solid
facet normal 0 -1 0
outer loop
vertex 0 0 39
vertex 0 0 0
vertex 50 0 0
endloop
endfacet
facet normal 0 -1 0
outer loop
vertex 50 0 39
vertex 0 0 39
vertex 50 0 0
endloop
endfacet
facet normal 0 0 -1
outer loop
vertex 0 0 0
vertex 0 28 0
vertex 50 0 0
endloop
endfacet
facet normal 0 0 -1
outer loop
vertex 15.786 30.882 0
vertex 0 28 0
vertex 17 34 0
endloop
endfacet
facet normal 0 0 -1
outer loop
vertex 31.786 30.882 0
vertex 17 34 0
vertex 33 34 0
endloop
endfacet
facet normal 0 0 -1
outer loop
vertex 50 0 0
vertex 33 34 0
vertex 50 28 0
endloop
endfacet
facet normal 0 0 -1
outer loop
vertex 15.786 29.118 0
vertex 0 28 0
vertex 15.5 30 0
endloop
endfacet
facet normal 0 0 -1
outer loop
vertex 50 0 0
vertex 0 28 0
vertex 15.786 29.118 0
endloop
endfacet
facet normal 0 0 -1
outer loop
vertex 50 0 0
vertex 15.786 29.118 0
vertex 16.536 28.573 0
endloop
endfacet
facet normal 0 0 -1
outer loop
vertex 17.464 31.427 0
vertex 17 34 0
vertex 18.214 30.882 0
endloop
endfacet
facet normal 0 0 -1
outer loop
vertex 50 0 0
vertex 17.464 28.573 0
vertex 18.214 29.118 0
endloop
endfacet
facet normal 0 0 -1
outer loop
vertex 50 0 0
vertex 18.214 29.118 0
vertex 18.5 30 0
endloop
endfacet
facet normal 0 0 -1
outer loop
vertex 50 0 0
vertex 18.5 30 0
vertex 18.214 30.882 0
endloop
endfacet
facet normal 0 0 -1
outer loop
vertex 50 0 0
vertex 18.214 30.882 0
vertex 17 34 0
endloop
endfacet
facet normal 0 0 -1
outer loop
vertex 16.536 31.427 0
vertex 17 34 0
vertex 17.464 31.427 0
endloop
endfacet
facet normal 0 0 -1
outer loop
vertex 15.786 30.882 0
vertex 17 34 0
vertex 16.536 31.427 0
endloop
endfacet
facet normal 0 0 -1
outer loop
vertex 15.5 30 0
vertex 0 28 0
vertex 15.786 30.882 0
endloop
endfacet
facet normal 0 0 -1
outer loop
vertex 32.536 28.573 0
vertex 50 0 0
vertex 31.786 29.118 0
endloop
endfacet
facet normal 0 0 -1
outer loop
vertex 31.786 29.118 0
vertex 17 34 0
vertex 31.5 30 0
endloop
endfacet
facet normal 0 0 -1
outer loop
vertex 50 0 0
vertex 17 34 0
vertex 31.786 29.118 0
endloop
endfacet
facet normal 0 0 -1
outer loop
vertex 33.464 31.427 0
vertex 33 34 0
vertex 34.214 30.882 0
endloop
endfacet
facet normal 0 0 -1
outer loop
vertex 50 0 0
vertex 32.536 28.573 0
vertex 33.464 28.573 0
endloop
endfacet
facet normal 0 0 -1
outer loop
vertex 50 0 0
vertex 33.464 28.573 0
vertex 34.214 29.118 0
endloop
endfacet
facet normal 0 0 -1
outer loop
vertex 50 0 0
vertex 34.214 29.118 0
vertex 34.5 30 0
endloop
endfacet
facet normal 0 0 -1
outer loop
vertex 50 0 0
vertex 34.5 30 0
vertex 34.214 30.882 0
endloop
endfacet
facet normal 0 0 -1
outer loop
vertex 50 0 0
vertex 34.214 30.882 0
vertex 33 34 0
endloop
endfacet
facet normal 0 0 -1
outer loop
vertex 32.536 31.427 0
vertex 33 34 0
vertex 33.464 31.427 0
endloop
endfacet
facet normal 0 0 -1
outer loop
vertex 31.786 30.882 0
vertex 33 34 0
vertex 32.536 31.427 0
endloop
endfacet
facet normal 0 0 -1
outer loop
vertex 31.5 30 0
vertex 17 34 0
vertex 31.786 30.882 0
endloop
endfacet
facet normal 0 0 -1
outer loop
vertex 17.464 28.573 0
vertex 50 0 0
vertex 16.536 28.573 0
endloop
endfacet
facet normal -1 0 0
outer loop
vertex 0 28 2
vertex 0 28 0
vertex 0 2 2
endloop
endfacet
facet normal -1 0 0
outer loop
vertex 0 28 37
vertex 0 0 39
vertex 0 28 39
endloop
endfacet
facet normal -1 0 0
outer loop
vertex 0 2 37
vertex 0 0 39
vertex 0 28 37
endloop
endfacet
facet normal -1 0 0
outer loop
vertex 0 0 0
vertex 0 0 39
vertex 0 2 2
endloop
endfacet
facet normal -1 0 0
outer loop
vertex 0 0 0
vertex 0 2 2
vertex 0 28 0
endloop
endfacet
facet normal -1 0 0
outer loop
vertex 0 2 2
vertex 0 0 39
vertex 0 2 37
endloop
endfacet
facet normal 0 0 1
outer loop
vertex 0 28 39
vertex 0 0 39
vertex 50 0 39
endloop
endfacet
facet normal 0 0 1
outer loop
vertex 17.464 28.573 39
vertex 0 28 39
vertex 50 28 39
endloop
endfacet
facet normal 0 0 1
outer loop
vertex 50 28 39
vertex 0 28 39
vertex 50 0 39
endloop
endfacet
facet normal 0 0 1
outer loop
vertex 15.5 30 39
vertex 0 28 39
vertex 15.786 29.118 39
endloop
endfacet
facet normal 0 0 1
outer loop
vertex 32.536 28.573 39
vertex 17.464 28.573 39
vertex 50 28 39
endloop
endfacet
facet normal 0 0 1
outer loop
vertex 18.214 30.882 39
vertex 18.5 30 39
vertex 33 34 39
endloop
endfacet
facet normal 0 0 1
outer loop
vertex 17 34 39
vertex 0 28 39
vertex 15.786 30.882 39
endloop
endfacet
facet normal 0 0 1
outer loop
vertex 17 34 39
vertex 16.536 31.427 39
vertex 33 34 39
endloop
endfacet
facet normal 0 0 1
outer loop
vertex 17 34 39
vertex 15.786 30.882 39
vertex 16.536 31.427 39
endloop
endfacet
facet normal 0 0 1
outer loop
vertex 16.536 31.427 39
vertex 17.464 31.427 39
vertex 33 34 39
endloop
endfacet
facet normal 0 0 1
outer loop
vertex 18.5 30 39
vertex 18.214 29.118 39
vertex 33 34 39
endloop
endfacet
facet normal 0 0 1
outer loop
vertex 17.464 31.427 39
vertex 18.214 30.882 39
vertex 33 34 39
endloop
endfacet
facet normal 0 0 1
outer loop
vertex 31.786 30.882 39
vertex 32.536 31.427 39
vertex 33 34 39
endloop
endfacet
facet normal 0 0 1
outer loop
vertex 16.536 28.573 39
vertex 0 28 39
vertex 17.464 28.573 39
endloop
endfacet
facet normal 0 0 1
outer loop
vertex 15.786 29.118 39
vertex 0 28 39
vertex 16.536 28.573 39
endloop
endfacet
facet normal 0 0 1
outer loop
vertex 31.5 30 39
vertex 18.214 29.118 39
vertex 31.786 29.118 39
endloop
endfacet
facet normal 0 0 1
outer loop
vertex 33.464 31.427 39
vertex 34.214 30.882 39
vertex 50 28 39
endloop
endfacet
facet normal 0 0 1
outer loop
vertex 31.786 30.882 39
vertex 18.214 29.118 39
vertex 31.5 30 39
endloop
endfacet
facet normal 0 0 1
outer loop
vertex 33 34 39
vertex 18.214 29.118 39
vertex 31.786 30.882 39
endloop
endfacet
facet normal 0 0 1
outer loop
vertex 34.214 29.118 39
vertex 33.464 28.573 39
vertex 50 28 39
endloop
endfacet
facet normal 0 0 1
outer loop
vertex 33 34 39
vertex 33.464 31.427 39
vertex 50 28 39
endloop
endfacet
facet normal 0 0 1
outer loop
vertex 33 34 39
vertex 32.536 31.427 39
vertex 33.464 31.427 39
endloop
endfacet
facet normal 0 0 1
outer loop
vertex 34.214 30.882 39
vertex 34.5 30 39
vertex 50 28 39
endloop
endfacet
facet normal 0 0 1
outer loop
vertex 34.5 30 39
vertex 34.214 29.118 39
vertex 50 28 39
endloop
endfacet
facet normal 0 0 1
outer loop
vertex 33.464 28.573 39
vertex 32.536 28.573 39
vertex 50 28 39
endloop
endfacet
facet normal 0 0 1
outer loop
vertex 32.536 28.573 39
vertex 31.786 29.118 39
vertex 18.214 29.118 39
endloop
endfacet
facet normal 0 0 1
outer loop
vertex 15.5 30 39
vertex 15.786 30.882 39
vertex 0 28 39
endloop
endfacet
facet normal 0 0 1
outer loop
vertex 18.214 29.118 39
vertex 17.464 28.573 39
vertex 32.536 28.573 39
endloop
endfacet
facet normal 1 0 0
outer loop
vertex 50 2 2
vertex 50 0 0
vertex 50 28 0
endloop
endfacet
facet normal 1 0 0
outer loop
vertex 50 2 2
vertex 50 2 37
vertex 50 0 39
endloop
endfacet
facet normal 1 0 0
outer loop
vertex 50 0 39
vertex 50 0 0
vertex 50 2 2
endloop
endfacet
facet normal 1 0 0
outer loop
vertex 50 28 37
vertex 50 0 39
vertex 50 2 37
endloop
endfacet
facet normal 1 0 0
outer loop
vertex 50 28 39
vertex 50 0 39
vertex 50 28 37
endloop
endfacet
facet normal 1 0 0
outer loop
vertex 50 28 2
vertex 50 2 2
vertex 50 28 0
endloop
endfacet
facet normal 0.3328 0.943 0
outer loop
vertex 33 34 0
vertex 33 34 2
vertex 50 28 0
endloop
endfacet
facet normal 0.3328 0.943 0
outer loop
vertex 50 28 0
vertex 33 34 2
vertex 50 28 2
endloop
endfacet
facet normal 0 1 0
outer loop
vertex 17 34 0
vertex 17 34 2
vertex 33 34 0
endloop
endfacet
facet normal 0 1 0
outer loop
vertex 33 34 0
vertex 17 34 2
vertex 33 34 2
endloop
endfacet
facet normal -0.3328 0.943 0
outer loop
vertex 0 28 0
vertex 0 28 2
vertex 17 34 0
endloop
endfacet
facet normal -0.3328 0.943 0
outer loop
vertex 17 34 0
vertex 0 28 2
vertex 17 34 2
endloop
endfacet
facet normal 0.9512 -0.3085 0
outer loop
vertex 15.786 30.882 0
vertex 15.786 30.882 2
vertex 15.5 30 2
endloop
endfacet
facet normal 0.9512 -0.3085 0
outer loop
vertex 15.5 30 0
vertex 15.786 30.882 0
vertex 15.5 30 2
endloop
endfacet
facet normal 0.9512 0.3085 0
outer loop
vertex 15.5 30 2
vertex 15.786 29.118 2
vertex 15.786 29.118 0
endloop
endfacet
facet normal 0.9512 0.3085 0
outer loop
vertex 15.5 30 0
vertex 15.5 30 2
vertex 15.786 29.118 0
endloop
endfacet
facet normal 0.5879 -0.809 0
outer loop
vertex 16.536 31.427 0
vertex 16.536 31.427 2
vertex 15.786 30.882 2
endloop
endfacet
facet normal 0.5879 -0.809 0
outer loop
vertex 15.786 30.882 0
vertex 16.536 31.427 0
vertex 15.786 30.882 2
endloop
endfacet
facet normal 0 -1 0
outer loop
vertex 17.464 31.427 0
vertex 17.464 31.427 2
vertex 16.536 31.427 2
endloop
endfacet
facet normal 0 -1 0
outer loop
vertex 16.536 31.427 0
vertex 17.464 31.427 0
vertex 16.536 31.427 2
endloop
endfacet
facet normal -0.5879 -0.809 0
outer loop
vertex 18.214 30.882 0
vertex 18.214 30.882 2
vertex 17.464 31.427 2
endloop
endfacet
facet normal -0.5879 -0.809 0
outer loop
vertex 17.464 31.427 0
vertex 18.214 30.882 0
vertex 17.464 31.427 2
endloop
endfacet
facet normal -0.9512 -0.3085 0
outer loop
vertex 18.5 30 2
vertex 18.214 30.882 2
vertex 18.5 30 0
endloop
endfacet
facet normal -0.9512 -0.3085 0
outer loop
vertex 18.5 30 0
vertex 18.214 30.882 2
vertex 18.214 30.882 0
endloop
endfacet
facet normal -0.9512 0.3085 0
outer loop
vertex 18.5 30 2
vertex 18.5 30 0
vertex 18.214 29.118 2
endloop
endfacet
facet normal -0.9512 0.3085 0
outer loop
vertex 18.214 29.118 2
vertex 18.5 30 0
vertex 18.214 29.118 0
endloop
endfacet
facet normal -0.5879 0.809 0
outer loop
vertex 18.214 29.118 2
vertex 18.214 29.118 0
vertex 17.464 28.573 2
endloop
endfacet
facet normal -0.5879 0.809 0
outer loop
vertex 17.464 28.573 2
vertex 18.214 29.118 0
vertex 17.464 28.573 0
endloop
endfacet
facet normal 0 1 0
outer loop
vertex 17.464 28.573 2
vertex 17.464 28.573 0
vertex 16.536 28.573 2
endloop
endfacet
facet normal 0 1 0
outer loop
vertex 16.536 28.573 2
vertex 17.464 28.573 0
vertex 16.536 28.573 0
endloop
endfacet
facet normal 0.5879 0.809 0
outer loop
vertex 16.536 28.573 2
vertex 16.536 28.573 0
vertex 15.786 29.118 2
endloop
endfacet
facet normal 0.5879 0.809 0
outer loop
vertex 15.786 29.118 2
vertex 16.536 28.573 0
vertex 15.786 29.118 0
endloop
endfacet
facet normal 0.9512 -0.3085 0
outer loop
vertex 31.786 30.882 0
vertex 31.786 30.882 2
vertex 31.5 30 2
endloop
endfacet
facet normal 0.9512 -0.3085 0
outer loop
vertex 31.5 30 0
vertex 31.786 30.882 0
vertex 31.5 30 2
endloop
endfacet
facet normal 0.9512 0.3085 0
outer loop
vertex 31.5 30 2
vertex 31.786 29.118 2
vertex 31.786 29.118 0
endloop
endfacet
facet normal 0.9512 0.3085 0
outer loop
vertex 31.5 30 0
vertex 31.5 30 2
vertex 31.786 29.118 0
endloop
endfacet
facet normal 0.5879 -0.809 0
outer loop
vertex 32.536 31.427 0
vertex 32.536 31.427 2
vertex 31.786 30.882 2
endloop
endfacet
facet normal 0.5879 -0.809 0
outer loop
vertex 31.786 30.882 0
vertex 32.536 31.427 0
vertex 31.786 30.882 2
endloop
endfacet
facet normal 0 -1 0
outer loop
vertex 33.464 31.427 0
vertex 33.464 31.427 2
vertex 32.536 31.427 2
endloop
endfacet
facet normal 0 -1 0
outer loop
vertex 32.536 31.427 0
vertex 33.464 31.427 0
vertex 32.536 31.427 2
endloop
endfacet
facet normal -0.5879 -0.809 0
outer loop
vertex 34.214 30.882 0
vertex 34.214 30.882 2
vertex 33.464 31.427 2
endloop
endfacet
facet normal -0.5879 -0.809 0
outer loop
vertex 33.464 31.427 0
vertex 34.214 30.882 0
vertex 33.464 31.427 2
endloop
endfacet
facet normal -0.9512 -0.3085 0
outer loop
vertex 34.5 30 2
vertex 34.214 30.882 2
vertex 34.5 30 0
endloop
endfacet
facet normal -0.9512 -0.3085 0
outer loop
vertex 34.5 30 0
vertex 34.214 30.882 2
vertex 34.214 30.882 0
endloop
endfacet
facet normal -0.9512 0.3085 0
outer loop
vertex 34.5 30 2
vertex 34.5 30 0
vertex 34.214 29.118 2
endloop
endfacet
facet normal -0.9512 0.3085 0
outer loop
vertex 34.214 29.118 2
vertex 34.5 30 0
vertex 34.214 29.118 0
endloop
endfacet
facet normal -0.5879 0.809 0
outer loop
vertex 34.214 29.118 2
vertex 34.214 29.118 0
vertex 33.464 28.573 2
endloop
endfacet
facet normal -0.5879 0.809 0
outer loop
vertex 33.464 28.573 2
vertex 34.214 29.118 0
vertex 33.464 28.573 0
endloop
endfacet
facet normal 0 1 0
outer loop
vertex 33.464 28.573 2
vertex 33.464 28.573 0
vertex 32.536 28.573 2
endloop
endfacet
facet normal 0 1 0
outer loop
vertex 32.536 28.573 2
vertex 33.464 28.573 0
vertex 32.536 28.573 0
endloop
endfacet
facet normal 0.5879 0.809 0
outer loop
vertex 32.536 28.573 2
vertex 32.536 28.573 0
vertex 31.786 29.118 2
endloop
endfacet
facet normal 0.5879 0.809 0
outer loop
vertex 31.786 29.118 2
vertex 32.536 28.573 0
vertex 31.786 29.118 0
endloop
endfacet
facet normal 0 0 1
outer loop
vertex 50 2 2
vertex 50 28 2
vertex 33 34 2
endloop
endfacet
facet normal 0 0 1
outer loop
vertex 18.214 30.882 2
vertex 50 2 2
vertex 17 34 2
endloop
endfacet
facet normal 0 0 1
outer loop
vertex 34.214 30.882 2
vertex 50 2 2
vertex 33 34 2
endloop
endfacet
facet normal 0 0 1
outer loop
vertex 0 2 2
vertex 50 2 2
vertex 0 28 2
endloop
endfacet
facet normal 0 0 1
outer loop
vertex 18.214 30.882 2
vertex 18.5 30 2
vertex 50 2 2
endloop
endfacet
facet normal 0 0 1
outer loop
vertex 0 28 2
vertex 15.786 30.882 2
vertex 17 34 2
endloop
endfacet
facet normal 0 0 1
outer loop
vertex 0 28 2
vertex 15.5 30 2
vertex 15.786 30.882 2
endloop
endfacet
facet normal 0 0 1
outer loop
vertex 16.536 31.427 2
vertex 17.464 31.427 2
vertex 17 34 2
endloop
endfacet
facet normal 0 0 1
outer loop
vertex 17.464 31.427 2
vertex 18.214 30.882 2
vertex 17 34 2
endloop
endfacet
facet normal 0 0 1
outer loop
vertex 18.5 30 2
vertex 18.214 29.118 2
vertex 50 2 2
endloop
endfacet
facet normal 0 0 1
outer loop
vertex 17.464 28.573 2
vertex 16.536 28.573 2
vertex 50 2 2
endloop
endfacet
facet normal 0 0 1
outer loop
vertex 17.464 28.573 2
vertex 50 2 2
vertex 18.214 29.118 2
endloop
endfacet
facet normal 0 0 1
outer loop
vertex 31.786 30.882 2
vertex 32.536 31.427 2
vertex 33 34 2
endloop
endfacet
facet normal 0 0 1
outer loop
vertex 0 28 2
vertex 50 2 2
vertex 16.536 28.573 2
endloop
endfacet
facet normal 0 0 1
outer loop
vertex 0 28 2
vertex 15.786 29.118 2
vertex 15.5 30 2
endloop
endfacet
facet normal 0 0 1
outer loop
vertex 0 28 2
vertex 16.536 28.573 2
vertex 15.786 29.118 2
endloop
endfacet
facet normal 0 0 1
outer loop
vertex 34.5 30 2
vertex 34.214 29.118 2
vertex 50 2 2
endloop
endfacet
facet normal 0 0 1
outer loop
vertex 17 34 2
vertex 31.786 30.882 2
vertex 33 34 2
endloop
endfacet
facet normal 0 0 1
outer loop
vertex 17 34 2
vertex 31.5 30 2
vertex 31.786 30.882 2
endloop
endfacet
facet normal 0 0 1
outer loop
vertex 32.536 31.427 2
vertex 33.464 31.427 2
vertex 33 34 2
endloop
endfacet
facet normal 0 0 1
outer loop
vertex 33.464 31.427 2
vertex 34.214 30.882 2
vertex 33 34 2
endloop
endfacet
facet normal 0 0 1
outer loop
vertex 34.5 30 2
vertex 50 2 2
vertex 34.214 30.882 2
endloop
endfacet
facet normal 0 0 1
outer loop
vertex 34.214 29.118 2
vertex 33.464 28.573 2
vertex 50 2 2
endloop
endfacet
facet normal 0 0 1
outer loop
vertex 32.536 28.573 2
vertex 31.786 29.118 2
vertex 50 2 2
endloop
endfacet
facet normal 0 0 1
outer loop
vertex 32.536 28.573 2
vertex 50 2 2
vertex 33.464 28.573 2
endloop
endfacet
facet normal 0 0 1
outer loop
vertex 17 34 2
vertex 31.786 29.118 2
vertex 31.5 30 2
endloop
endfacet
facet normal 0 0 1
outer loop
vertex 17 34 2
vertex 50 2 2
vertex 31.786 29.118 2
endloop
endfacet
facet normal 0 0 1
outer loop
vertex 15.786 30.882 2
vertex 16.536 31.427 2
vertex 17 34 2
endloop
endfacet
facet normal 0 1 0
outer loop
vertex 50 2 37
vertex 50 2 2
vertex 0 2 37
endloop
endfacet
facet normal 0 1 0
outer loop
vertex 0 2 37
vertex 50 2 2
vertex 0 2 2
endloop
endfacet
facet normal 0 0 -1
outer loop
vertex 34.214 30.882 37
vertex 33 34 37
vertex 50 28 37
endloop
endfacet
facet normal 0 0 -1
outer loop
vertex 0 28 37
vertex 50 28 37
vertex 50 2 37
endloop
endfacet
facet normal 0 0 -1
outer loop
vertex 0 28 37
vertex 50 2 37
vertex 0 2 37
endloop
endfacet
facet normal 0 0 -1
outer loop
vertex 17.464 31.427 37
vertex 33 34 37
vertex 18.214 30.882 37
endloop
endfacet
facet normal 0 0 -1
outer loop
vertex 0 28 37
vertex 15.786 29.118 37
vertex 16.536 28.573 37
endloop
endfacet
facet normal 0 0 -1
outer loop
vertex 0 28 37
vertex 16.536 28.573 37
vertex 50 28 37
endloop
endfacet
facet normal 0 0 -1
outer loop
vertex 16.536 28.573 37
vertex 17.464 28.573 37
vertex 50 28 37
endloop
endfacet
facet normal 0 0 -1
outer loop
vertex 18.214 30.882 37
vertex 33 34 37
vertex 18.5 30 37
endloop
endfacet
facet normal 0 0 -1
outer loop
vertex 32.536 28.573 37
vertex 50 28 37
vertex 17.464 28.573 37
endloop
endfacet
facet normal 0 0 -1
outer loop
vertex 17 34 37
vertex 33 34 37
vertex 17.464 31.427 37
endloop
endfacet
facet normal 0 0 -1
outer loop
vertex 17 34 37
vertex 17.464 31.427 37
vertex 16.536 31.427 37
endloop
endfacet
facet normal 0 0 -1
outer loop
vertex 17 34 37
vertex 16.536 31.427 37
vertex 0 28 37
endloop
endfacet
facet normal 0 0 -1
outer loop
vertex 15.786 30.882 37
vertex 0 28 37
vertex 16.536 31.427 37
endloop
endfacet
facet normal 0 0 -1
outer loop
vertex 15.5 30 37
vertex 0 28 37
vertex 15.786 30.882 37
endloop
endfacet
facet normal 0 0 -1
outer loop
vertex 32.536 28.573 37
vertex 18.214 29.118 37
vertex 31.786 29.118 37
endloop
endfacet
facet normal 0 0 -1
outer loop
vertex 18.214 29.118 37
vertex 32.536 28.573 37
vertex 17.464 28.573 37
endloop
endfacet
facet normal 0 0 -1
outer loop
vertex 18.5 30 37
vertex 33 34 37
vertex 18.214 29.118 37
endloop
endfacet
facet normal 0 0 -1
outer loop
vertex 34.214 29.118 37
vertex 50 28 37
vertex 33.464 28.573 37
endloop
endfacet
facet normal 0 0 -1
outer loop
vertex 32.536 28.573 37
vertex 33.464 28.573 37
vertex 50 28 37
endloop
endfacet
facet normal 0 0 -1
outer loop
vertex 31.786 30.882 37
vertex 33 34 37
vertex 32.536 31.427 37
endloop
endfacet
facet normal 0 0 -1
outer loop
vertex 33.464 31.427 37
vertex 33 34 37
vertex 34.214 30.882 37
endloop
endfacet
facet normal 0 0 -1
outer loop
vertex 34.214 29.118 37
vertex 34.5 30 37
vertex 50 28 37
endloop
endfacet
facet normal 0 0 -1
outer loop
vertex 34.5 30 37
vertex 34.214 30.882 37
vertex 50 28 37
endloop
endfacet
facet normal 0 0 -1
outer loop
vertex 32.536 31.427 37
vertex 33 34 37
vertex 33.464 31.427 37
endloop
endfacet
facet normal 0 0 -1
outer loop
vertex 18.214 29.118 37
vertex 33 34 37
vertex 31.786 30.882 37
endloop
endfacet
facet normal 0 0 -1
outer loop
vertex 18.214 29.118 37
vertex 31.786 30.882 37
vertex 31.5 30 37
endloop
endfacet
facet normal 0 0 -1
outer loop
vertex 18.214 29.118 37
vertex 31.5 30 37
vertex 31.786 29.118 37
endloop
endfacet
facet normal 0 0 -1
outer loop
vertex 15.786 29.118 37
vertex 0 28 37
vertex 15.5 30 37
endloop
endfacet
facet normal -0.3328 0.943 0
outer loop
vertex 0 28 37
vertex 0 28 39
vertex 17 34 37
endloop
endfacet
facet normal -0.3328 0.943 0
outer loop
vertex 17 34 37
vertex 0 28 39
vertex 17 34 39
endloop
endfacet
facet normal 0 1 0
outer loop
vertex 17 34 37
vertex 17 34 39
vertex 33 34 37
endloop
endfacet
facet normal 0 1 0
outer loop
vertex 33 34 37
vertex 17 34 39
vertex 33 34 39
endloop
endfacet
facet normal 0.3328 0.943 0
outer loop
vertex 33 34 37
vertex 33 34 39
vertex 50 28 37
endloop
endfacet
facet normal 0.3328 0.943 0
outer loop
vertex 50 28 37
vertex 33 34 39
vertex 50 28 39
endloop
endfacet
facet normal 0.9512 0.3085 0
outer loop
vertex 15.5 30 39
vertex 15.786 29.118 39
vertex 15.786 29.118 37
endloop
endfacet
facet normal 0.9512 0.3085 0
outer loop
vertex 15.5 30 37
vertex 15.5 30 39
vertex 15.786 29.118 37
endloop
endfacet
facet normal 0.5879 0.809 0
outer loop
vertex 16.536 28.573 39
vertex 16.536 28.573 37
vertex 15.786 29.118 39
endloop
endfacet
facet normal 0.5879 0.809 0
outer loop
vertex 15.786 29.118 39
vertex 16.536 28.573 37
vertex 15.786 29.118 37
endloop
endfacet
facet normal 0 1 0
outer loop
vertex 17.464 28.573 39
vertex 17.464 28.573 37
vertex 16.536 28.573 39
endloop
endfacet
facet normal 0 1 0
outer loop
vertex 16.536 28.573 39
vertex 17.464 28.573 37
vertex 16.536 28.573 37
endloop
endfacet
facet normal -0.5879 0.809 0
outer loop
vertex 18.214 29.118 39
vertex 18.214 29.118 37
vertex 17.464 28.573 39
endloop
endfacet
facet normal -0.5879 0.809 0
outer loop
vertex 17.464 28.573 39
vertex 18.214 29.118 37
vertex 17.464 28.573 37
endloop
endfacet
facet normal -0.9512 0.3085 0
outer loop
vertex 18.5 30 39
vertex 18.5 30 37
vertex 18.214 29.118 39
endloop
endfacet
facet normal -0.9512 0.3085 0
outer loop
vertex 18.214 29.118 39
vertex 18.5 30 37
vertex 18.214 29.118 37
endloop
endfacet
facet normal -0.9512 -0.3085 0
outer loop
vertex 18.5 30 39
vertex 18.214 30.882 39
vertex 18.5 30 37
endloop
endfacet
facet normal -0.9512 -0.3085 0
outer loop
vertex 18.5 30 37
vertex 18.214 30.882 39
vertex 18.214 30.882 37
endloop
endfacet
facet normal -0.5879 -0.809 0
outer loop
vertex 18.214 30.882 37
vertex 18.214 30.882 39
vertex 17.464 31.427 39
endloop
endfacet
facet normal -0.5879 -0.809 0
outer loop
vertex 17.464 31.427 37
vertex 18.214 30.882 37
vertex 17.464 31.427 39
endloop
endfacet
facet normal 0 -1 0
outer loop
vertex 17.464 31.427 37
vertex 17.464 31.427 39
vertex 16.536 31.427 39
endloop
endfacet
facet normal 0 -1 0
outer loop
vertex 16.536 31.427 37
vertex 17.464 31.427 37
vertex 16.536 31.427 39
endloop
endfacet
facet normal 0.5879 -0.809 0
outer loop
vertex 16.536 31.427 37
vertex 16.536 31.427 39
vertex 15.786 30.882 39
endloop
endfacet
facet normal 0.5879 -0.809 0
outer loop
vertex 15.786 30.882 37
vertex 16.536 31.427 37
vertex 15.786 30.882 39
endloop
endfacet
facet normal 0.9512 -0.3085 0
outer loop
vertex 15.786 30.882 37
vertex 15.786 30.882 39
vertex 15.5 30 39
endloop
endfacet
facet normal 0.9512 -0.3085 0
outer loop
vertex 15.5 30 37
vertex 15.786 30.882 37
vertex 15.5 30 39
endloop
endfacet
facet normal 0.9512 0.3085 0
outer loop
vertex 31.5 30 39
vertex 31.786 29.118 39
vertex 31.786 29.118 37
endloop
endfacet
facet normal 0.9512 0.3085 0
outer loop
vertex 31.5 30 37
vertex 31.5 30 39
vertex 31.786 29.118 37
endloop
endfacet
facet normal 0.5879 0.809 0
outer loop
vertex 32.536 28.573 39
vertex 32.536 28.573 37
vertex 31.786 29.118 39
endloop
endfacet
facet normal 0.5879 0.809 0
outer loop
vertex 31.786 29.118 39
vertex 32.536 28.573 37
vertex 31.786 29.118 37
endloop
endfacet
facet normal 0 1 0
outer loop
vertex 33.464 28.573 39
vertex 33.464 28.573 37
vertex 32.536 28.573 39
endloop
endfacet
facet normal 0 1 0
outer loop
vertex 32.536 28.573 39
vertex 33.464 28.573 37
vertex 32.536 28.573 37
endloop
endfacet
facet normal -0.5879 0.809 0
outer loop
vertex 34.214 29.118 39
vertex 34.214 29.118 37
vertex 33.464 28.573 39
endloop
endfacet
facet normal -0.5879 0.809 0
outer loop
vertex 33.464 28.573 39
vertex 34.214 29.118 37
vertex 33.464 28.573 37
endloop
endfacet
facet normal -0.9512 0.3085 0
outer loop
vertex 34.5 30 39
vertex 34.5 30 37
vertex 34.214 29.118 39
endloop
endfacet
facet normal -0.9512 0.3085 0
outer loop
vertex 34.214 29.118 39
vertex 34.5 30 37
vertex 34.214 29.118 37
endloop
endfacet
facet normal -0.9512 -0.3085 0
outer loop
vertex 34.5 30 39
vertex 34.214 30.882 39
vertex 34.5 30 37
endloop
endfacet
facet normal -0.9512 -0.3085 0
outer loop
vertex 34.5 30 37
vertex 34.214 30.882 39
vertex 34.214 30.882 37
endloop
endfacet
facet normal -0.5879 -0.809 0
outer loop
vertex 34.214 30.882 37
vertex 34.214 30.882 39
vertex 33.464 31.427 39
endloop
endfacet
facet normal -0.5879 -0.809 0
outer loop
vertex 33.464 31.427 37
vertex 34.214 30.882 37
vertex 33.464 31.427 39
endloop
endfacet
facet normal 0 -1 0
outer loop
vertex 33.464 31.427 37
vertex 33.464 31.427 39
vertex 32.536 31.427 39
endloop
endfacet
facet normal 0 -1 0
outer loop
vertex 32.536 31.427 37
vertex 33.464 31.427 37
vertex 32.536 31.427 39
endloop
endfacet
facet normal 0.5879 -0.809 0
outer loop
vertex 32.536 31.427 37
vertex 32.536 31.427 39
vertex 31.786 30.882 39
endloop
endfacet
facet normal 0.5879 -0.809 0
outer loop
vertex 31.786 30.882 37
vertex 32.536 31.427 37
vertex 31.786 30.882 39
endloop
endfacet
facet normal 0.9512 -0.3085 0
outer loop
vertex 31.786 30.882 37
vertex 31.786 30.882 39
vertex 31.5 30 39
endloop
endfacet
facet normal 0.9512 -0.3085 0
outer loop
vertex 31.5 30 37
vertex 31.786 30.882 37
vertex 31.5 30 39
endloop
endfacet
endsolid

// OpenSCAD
difference(){
hull(){
cube([50,28,39]);
translate([25-8,30,0])cylinder(r=4,h=39,$fn=4);
translate([25+8,30,0])cylinder(r=4,h=39,$fn=4);
}
translate([-10,2,2])cube([100,38,35]);
translate([25-8,30,-1])cylinder(r=1.5,h=41,$fn=10);
translate([25+8,30,-1])cylinder(r=1.5,h=41,$fn=10);

}
